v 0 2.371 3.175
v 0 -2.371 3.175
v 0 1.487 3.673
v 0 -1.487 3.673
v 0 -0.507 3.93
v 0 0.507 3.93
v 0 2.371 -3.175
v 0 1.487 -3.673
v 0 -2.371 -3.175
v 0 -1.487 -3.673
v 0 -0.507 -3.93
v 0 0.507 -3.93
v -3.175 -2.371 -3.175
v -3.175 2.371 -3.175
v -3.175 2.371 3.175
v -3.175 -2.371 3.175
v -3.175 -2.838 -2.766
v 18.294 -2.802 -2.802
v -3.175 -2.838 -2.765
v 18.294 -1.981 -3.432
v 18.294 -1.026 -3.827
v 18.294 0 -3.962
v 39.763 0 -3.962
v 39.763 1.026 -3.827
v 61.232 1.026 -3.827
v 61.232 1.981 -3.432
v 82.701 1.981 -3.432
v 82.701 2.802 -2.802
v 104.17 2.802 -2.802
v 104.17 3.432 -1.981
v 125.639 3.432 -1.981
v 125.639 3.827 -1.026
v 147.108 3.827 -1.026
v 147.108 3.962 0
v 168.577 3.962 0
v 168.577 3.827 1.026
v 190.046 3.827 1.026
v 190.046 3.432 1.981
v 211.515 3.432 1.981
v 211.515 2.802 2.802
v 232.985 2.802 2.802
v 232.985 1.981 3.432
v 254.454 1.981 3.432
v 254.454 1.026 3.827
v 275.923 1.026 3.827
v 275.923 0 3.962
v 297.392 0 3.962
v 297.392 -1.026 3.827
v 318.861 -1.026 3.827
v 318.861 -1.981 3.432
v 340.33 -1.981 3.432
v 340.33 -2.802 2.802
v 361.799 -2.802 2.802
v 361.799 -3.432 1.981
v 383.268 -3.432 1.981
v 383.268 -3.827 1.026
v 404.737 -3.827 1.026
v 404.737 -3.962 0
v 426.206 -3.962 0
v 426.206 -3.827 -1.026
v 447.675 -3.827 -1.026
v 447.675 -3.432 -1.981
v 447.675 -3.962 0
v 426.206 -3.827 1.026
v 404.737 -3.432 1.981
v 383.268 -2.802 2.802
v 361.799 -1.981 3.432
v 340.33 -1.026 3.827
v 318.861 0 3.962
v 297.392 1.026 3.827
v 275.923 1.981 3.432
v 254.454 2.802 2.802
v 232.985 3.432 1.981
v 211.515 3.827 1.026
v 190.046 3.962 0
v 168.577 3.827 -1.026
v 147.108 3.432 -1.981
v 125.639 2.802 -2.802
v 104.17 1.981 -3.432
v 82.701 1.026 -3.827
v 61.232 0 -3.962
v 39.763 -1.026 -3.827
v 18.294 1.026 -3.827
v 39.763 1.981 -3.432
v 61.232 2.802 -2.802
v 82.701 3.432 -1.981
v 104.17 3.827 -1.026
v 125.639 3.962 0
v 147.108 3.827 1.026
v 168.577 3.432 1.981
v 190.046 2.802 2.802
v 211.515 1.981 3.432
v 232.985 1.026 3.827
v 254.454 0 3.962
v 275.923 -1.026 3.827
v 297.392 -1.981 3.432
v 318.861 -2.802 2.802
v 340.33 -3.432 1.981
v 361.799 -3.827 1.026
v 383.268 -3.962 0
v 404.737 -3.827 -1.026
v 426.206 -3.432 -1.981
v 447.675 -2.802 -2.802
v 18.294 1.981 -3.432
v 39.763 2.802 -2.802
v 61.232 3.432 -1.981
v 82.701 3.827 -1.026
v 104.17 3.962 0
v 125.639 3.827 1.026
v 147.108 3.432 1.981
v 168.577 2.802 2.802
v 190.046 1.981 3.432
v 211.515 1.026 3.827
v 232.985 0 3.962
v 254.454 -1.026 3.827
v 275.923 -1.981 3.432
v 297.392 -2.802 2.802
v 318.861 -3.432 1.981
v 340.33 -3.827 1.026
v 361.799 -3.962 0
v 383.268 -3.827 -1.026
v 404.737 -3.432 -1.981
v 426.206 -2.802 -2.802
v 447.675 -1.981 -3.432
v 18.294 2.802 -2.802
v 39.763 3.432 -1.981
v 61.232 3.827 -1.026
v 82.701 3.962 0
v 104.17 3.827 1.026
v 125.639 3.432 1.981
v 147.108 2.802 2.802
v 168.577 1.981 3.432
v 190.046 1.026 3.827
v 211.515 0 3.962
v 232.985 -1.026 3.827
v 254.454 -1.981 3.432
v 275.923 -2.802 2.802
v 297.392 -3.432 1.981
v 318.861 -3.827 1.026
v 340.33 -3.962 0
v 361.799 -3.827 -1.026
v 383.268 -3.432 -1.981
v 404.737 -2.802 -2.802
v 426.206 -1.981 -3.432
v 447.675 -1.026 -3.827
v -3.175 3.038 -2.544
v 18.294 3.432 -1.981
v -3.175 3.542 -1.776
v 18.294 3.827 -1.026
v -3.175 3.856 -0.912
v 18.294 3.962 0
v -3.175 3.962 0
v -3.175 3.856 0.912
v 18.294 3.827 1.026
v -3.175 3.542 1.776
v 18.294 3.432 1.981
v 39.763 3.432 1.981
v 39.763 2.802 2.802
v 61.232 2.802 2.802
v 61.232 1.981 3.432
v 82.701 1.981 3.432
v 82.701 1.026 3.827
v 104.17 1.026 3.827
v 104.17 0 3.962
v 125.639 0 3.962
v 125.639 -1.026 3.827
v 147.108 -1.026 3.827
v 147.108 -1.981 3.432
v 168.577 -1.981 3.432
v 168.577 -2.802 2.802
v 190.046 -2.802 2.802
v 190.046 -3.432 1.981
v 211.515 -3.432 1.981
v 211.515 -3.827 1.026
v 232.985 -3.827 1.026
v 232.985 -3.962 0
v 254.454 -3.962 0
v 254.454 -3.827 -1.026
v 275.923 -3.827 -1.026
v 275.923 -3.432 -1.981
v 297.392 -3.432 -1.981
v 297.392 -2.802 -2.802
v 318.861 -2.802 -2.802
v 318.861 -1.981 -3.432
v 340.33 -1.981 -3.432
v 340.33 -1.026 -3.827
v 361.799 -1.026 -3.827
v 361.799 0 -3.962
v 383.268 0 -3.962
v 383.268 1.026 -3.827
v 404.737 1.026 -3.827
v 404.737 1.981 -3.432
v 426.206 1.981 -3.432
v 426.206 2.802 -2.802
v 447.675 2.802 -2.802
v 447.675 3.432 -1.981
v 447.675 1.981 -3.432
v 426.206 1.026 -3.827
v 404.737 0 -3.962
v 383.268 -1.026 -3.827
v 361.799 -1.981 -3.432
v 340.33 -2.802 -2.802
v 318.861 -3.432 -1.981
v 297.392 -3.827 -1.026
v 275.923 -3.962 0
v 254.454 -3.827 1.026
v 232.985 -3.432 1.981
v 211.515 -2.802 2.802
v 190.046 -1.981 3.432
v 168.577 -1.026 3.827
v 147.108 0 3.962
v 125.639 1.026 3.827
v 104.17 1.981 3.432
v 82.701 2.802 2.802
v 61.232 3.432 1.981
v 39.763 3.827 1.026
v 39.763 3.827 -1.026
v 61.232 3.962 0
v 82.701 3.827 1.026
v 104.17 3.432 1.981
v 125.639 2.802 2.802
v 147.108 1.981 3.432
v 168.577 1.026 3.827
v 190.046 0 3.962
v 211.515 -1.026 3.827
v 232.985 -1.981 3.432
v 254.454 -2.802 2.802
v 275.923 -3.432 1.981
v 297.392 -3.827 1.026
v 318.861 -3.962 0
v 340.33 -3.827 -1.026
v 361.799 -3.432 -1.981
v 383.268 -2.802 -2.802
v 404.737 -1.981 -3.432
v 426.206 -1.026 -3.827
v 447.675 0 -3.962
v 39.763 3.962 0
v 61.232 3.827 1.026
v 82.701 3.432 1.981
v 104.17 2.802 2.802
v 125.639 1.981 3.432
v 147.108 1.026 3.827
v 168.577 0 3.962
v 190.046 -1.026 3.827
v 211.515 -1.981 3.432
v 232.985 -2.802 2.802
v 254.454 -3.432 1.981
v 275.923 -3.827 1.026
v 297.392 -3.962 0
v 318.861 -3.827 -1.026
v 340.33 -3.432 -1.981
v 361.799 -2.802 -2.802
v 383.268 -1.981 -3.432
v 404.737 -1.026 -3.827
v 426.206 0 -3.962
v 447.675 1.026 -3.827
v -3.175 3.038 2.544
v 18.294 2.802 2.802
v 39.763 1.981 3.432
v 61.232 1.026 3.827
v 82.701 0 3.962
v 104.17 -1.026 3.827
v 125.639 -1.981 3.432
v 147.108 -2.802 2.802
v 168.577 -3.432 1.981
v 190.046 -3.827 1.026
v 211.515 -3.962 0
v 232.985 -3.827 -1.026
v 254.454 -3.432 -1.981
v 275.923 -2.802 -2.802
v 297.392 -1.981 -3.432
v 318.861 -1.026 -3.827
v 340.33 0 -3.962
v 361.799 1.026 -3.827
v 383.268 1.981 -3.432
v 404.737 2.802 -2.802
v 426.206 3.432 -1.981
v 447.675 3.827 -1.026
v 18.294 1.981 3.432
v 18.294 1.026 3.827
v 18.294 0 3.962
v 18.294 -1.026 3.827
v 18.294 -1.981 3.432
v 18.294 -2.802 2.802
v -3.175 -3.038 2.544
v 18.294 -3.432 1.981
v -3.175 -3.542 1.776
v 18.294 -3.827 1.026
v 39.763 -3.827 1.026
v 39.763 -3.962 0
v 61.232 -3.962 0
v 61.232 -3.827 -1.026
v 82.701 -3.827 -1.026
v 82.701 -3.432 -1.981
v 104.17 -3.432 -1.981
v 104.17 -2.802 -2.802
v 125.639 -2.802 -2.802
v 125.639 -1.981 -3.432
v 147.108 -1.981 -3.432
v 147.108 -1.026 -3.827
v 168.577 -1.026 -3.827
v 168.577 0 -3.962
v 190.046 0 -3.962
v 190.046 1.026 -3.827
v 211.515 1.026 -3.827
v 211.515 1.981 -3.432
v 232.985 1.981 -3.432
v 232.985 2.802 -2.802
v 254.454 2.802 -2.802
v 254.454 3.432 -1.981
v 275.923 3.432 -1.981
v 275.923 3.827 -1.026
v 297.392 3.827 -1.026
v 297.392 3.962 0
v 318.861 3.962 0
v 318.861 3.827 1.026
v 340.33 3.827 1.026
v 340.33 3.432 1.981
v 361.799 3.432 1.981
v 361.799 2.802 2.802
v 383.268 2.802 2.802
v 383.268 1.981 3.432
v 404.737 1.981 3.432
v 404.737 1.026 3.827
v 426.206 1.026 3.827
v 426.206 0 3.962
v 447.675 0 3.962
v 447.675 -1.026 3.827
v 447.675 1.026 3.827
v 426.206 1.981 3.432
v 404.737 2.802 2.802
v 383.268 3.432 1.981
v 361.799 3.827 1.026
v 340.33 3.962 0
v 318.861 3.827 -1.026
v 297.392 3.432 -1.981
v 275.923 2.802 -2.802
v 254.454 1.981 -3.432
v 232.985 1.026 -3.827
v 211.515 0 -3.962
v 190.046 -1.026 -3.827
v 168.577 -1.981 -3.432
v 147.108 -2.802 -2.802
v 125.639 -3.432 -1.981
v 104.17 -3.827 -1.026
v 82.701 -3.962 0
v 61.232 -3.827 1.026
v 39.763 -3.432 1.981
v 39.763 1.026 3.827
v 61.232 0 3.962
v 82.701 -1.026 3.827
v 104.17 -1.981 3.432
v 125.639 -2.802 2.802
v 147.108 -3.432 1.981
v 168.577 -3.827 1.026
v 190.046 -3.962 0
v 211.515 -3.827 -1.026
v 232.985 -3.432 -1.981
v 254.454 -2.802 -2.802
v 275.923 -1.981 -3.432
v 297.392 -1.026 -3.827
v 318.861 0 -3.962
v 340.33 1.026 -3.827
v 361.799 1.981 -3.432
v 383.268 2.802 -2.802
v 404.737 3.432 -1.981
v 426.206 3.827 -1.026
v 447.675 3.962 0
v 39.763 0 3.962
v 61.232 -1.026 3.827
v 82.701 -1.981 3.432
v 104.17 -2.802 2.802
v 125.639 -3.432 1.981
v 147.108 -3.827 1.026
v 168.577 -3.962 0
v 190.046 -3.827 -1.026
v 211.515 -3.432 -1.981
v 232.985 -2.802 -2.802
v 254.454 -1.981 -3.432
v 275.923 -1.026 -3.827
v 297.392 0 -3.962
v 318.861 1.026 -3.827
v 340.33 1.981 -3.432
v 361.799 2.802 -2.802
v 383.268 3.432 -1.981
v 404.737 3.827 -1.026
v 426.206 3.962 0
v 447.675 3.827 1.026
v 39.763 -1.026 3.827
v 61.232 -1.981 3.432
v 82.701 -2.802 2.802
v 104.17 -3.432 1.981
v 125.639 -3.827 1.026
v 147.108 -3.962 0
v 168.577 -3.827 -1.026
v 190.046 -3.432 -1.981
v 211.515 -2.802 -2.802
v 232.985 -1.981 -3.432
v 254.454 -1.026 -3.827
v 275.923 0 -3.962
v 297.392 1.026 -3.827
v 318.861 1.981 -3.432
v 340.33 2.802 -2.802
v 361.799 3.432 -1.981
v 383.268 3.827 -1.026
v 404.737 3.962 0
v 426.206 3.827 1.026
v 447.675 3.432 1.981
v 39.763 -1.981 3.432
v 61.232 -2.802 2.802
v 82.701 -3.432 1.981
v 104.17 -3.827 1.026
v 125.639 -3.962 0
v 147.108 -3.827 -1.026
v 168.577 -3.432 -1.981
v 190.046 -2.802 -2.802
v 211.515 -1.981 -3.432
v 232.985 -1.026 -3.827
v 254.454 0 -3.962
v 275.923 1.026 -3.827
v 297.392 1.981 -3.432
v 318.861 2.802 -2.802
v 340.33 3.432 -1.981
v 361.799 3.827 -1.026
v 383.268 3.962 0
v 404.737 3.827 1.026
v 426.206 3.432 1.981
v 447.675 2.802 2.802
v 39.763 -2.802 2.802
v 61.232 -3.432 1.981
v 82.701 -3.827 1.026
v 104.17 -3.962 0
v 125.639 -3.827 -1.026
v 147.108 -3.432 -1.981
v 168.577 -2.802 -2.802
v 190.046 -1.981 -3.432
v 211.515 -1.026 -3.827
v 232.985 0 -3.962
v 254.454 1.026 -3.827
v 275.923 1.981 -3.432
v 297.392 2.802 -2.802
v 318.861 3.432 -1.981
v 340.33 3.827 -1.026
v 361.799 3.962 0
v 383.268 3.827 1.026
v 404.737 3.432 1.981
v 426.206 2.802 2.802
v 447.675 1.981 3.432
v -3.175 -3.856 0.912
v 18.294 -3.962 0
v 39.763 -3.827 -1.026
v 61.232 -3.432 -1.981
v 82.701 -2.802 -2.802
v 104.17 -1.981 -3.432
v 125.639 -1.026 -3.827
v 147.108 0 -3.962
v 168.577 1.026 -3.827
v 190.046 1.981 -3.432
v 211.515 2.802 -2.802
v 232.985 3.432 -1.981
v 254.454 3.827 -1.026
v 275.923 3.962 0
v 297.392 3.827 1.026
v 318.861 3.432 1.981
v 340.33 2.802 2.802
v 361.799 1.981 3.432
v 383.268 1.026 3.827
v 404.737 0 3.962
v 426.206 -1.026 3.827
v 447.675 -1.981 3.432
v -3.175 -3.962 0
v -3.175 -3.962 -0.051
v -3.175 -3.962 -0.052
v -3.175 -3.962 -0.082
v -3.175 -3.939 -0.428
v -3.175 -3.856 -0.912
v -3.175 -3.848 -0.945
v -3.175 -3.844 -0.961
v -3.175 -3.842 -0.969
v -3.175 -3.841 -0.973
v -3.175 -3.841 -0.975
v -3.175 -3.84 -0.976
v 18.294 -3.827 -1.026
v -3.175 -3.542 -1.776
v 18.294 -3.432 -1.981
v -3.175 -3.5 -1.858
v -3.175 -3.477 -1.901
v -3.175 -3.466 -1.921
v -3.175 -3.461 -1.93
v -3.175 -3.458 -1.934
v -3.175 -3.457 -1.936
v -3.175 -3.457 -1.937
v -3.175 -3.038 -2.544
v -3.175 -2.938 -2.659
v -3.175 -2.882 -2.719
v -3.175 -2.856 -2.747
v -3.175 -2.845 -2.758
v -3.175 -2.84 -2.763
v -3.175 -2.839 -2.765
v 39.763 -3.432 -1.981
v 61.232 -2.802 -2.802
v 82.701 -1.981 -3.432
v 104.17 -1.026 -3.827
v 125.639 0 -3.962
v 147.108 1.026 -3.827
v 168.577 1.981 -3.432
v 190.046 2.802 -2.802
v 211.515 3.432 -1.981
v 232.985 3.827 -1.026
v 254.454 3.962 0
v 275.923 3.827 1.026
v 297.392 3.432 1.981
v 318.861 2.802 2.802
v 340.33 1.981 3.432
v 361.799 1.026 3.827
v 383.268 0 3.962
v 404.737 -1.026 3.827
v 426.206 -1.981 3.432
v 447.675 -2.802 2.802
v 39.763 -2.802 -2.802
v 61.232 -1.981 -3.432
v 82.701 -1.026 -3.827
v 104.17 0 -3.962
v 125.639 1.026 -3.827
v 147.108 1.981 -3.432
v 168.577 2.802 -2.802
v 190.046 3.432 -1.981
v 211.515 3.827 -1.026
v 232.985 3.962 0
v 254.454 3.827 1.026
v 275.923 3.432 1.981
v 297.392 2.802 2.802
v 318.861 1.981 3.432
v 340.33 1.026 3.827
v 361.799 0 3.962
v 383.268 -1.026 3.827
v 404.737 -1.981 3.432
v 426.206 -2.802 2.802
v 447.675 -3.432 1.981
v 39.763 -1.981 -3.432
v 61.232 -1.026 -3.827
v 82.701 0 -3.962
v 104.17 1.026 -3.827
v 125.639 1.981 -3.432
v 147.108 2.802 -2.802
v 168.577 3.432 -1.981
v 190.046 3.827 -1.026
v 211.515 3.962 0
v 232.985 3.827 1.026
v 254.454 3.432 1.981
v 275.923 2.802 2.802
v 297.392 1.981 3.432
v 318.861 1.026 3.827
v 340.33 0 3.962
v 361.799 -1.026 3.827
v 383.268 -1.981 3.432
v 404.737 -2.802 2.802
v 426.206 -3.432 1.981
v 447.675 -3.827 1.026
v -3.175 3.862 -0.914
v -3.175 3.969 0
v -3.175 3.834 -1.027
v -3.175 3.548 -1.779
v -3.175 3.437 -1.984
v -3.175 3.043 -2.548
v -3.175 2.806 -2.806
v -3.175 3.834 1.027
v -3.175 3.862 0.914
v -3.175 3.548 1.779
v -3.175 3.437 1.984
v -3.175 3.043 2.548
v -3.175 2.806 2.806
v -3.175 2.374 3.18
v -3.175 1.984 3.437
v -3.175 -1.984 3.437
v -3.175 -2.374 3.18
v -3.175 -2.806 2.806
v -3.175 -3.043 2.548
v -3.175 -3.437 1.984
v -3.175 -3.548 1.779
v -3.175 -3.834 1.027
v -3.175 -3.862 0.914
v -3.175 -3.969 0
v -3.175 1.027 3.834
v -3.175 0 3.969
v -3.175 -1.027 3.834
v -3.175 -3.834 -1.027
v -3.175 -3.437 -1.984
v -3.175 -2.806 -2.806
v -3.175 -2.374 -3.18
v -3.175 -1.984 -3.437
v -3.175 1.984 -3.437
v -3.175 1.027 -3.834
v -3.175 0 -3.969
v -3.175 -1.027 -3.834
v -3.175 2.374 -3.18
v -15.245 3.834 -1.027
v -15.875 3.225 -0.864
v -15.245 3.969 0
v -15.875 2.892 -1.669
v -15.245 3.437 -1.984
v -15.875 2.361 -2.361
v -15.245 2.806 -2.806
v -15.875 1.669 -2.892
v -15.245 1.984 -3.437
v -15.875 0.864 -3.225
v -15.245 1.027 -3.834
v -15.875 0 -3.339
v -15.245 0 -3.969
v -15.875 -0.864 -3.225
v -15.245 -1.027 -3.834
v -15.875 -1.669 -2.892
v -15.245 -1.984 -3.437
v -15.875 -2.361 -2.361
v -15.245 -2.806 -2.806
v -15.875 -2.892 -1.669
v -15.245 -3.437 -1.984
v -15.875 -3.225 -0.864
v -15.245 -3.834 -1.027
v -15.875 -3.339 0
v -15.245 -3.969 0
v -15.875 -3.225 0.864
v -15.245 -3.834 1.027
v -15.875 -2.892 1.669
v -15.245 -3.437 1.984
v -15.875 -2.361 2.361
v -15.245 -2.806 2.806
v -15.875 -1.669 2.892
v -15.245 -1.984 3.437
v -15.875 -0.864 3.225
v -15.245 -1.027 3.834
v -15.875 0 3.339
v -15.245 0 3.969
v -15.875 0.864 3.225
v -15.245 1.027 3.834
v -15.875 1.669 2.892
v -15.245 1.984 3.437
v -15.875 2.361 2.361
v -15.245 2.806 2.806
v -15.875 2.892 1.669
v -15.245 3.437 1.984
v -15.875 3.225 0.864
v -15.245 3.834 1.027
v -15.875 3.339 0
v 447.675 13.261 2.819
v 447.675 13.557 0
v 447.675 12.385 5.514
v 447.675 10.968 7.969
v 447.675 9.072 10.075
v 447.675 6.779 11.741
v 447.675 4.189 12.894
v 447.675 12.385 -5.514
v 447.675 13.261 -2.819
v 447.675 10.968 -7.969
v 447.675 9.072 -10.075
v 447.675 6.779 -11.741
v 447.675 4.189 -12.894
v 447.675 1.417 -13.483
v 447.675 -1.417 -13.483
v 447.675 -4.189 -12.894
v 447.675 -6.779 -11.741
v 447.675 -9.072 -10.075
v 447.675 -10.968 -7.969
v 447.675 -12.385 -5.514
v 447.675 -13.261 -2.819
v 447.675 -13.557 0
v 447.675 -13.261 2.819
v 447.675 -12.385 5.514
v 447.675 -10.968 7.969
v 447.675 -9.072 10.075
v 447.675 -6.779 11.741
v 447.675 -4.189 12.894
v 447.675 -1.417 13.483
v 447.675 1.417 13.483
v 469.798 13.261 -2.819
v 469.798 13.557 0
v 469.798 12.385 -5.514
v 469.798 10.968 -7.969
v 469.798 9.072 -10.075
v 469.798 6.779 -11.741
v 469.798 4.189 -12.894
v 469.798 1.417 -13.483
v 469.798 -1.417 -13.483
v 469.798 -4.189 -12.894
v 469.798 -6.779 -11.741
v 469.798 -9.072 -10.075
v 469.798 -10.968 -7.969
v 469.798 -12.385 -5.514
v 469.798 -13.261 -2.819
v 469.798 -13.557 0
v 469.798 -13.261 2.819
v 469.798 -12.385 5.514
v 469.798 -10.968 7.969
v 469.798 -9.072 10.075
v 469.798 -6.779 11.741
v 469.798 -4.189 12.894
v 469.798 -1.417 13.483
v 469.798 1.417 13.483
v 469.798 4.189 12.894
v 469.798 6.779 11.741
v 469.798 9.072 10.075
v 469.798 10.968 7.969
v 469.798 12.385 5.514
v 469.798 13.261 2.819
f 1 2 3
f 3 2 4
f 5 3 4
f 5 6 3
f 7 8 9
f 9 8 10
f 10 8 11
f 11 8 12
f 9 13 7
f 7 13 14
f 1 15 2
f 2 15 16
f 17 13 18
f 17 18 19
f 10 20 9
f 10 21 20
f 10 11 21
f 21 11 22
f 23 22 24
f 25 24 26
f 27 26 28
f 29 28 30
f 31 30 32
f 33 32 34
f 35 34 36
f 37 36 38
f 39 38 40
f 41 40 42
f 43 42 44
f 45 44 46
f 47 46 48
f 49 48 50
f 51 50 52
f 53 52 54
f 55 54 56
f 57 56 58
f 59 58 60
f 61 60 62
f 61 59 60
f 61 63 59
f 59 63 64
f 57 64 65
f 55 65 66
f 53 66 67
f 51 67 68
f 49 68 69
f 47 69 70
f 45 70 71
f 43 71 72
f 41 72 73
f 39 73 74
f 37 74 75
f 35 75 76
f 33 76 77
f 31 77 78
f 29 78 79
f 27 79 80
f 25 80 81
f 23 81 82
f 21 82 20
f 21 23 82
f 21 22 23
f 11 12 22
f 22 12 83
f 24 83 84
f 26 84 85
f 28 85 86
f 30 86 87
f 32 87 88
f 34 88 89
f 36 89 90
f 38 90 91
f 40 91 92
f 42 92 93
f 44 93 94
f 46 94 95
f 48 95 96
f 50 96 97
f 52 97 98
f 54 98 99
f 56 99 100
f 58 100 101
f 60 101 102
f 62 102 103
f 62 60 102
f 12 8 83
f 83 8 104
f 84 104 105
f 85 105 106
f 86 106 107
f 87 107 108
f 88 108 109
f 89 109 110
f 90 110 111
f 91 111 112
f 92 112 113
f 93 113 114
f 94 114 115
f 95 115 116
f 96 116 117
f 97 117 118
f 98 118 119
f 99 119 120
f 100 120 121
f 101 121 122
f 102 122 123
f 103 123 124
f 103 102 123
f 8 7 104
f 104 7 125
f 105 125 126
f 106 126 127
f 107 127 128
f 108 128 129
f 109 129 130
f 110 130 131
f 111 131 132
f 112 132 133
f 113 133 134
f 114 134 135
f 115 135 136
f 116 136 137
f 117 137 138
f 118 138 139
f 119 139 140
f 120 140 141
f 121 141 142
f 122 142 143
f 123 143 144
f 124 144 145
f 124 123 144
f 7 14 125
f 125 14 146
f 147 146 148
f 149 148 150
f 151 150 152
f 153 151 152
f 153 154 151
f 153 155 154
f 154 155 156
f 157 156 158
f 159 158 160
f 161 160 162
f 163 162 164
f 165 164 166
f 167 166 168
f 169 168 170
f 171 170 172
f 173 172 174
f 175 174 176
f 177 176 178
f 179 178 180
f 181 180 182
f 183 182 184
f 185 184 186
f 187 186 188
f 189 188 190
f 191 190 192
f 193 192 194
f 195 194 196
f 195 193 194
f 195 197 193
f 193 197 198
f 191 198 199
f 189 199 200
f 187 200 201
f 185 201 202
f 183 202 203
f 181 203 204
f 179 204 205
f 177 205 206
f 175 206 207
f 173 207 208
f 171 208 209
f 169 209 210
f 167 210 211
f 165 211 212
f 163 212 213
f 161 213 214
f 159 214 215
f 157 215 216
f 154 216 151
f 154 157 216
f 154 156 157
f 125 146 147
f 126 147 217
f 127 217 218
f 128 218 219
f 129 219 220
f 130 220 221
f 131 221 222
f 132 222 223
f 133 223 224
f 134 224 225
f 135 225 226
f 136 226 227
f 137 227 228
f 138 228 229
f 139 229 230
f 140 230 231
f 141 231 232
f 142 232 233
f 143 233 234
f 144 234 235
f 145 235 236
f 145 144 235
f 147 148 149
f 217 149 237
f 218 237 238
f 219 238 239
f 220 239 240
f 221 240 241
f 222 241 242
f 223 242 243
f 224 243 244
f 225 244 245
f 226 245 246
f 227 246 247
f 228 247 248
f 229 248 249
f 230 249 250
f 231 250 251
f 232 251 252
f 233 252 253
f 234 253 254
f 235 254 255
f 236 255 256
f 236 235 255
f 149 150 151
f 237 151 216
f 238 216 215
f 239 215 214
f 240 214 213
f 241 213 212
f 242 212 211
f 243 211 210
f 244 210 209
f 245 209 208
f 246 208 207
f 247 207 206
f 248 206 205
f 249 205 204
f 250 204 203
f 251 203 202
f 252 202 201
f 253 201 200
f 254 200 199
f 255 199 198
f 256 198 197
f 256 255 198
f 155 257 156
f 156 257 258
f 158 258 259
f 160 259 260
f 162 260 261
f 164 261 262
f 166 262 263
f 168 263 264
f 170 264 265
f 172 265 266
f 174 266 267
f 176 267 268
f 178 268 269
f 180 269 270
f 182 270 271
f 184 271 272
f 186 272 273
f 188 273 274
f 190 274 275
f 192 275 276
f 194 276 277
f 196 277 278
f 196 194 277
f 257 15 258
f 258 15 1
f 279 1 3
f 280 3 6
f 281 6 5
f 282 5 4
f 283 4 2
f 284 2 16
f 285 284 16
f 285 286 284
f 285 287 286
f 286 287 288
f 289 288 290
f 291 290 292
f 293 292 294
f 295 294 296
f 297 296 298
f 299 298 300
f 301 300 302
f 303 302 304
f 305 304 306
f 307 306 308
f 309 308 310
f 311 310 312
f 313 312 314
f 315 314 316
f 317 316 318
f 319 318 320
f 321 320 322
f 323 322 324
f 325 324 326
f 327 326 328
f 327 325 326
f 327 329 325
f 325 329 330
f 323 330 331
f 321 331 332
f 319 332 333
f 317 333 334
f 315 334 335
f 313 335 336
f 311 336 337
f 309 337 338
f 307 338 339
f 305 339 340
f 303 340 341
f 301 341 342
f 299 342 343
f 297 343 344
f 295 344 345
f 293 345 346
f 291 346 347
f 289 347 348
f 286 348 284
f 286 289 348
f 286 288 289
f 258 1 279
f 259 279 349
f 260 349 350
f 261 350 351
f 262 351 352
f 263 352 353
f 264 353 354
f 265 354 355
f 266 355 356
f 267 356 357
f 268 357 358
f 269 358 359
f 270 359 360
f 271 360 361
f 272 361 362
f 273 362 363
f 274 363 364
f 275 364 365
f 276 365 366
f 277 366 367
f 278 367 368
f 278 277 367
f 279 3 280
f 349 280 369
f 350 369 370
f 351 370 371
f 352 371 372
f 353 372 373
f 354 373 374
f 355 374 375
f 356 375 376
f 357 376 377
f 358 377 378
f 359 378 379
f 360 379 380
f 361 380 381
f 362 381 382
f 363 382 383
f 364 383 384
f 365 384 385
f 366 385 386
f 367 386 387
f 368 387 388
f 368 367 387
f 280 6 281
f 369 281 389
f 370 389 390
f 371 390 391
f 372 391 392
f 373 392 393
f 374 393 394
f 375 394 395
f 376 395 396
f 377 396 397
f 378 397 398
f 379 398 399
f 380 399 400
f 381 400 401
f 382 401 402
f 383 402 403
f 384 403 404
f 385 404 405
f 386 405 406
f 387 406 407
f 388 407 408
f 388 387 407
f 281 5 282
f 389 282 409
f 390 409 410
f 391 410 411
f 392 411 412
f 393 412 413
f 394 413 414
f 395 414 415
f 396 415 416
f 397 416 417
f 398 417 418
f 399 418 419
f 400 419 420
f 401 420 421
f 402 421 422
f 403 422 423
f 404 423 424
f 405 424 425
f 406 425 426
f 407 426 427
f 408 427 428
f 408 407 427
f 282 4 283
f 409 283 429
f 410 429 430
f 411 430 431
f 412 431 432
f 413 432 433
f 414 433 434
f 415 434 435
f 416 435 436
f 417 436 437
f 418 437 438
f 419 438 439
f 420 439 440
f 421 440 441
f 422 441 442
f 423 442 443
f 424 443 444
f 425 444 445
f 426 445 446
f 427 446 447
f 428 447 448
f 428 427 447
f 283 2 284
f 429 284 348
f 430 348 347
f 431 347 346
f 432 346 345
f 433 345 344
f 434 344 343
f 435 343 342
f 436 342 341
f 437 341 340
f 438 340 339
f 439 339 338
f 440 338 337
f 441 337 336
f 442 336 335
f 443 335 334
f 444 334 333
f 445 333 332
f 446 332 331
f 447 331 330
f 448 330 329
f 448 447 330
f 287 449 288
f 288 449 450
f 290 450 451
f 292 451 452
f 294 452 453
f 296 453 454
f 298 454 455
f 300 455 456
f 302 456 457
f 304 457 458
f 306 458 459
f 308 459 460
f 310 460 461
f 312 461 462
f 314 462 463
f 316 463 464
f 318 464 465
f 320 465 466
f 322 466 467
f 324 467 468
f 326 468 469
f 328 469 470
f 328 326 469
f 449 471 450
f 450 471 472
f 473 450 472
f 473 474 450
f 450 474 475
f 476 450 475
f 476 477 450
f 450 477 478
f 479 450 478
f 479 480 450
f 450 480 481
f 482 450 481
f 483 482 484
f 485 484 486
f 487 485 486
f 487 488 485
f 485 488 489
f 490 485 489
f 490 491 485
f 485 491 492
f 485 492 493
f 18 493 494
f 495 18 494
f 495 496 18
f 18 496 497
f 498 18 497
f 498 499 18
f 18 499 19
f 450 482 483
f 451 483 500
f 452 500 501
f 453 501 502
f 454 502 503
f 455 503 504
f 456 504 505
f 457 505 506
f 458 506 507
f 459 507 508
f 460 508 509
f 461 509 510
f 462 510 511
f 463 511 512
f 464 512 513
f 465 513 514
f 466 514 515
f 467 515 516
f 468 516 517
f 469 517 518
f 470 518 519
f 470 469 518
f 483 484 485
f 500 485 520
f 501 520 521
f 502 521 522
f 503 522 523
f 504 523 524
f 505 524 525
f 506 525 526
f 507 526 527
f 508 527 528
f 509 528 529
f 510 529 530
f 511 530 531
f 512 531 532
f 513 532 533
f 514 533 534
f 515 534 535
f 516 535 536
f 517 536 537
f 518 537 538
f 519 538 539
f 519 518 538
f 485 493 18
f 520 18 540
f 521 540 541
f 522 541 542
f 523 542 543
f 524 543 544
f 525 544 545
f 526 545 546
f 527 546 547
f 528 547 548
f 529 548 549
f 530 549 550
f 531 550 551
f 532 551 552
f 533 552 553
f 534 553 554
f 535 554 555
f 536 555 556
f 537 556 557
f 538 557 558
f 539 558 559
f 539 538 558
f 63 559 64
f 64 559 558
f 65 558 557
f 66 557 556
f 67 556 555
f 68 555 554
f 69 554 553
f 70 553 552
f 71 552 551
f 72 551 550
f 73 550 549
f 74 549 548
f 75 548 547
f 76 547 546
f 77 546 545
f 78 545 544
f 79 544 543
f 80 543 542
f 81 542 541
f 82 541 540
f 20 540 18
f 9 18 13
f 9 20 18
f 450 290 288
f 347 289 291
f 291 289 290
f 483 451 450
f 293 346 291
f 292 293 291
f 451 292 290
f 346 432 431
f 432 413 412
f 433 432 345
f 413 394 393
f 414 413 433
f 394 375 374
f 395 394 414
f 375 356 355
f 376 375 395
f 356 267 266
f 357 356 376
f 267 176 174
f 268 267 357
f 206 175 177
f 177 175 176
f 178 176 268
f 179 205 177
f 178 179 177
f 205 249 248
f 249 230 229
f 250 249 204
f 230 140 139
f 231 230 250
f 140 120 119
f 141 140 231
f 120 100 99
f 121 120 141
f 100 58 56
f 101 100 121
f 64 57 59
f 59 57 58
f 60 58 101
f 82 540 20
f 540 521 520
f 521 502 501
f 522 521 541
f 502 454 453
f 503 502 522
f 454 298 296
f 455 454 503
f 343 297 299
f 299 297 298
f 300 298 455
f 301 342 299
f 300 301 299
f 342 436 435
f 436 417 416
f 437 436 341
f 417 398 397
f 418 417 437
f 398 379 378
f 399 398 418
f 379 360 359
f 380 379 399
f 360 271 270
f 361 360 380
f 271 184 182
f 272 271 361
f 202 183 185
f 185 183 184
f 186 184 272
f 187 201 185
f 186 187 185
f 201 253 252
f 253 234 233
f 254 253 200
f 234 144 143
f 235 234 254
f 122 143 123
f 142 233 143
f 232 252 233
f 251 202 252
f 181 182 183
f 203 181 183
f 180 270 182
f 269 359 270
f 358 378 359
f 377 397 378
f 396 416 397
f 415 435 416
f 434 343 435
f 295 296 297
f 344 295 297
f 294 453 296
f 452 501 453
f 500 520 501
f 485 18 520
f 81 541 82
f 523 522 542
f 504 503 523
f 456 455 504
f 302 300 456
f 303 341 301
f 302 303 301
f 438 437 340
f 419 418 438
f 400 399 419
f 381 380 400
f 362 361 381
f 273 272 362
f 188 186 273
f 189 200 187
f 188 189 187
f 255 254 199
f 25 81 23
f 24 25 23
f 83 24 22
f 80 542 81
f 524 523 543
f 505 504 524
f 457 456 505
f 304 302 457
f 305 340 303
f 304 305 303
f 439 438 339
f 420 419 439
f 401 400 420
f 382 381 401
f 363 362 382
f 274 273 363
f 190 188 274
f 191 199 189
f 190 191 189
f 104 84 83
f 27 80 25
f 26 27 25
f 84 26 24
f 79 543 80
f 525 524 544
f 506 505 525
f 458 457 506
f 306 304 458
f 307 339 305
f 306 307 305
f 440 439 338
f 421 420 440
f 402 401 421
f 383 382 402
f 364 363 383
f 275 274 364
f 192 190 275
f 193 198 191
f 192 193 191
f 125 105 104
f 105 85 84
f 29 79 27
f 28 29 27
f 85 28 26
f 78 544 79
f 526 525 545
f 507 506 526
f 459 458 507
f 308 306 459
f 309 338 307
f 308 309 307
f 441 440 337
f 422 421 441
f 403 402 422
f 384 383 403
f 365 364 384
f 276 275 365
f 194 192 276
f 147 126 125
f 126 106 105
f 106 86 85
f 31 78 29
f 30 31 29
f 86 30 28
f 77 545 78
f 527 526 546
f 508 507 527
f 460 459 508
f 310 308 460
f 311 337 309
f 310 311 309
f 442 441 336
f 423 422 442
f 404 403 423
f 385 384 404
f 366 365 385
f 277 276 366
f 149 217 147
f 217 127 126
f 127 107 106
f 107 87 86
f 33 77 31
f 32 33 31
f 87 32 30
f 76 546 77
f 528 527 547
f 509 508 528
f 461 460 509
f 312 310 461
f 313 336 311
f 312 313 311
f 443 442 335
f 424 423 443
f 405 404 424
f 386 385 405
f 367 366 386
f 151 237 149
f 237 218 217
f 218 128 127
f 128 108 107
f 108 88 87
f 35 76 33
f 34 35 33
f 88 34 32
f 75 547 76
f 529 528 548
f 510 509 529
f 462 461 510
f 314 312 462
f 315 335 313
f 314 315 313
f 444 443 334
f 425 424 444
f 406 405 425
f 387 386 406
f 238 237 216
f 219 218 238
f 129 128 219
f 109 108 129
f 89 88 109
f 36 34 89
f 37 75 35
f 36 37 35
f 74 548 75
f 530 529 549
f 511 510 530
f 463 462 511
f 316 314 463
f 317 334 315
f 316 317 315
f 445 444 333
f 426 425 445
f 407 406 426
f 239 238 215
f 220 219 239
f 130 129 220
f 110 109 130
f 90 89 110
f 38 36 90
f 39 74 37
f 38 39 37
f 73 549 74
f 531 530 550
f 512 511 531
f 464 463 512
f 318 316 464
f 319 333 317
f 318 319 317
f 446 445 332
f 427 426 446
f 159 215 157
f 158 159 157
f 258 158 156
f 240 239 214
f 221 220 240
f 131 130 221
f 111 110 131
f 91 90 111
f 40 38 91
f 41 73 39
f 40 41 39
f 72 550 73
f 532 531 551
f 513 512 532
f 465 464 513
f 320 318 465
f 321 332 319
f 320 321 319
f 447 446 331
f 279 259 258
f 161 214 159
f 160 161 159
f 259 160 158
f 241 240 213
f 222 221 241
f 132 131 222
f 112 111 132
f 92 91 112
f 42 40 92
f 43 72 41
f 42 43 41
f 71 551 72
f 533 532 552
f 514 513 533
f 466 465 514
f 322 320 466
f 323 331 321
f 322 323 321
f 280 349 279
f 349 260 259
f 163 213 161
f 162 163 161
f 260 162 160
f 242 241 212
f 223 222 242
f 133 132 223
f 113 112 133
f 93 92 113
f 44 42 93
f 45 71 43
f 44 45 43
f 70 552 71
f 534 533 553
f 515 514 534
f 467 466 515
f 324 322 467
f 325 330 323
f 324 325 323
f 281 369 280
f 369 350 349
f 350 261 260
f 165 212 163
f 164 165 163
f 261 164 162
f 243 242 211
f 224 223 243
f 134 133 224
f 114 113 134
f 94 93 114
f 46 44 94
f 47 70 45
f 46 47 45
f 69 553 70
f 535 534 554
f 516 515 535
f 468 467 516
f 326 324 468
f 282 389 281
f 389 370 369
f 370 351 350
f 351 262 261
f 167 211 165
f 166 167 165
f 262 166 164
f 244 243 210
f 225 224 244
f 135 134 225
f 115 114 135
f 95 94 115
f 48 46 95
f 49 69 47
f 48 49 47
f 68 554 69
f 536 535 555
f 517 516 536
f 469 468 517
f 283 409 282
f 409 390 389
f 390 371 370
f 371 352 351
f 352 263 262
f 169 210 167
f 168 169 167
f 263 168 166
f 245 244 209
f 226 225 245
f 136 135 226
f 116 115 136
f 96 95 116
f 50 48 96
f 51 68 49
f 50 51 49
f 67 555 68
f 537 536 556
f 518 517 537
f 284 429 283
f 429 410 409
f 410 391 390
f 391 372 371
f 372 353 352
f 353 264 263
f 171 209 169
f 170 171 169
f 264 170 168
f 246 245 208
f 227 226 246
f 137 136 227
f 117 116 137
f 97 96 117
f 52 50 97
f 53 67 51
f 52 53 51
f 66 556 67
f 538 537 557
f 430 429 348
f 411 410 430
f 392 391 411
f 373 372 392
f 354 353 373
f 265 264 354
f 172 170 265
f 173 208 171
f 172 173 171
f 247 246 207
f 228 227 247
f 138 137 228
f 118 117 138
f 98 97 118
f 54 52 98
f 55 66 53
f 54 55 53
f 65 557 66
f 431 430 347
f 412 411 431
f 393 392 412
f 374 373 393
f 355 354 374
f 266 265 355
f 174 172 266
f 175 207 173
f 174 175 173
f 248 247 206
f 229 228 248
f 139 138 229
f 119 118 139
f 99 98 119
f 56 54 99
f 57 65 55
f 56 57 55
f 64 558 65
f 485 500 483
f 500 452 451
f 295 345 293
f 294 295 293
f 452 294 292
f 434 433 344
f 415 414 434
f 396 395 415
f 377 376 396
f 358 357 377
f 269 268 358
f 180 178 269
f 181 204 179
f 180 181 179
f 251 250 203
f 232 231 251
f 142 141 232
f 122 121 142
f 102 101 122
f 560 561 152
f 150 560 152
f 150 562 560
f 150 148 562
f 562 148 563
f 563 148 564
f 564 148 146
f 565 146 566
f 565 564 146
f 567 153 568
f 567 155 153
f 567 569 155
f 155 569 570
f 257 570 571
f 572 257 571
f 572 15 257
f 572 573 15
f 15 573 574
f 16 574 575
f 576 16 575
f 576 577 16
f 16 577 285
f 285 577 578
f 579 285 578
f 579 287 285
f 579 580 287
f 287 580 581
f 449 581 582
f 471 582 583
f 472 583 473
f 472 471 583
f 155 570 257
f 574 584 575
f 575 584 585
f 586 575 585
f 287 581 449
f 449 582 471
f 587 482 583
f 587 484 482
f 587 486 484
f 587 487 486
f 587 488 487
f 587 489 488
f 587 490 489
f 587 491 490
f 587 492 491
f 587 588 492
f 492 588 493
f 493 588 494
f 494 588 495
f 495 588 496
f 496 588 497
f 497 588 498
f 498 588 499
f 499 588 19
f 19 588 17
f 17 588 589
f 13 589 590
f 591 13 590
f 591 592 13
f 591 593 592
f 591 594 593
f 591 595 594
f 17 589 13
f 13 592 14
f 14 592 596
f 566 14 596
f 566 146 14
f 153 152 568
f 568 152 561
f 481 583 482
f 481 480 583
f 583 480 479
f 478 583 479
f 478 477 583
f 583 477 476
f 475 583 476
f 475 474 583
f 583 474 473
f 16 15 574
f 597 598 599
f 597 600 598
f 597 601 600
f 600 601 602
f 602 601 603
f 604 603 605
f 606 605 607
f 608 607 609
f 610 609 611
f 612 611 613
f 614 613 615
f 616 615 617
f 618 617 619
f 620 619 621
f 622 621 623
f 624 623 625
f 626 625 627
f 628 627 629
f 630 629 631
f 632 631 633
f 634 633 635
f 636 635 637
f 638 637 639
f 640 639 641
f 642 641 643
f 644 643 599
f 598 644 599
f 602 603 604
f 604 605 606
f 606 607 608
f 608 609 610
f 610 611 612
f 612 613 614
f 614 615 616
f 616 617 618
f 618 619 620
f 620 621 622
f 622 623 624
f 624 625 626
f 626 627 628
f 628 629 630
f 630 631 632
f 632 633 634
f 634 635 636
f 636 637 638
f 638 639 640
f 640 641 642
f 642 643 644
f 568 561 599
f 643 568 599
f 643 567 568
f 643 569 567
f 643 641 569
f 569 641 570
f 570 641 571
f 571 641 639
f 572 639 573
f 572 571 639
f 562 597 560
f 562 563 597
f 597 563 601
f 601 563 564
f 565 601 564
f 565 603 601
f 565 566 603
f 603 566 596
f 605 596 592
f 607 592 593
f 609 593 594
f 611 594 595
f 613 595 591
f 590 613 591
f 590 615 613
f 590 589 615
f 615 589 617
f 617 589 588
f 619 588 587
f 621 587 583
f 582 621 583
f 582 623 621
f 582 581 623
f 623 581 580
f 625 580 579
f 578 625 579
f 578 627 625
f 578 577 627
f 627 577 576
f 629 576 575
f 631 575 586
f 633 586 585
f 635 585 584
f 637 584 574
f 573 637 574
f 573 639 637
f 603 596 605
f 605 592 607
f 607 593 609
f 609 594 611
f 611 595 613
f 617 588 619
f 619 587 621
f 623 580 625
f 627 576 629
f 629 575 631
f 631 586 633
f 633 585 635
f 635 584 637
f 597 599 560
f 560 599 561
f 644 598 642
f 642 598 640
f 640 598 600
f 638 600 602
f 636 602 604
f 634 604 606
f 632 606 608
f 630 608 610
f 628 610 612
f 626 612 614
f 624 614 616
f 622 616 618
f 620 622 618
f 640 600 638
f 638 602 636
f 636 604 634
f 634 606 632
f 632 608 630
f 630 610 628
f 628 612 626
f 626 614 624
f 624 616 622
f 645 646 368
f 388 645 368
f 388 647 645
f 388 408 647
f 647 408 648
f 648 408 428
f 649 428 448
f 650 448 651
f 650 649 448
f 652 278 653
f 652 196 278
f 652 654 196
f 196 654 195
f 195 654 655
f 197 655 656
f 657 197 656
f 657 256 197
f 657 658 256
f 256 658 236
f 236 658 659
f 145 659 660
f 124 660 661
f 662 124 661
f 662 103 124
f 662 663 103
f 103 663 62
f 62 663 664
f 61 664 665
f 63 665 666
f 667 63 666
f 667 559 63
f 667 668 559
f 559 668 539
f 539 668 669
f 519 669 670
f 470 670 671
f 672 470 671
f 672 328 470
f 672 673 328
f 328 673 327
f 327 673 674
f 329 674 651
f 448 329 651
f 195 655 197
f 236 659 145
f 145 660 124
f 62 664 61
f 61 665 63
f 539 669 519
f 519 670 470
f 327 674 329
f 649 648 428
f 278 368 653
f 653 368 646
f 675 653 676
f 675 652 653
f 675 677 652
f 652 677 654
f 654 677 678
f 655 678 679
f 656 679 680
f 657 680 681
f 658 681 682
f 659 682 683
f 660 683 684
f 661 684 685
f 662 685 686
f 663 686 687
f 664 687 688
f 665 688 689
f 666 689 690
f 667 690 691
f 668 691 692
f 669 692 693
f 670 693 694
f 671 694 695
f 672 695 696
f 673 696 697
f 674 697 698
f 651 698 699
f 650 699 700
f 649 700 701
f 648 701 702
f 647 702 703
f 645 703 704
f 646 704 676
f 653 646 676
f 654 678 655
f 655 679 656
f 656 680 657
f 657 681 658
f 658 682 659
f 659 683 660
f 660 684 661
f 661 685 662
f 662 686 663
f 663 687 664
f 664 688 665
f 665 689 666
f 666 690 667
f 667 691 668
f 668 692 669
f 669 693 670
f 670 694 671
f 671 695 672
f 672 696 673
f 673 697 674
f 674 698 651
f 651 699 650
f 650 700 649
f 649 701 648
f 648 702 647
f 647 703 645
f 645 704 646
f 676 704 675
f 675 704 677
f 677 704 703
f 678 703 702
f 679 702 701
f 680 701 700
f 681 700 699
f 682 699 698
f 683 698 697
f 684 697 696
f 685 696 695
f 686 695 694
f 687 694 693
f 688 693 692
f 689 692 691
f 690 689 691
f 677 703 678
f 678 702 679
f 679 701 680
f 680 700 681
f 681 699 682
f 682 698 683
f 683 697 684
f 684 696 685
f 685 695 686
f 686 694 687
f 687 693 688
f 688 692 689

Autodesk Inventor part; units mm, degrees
sketch "Sketch_1" plane through (0, 0, 0) normal (0, 0, 1) x (1, 0, 0)
  line L0 (469.7984, 0) -> (-3.175, 0)
  line L1 (-3.175, 0) -> (-3.175, 3.9624)
  line L2 (-3.175, 3.9624) -> (447.675, 3.9624)
  line L3 (447.675, 3.9624) -> (447.675, 13.5572)
  line L4 (447.675, 13.5572) -> (469.7984, 13.5572)
  line L5 (469.7984, 13.5572) -> (469.7984, 0)
  line L6 (469.7984, 0) -> (-3.175, 0)
revolve "Revolution1" add sketch "Sketch_1" angle 360 about axis through (469.7984, 0, 0) along (1, 0, 0)
sketch "Sketch_3" plane through (0, 0, 0) normal (0, 0, 1) x (1, 0, 0)
  line L0 (-3.175, 0) -> (-15.875, 0)
  line L1 (-15.875, 0) -> (-15.875, 3.3388)
  line L2 (-15.875, 3.3388) -> (-15.2451, 3.9688)
  line L3 (-15.2451, 3.9688) -> (-3.175, 3.9688)
  line L4 (-3.175, 3.9688) -> (-3.175, 0)
  line L5 (-3.175, 0) -> (-15.875, 0)
revolve "Revolution2" add sketch "Sketch_3" angle 360 about axis through (-3.175, 0, 0) along (1, 0, 0)
thread "Thread1" size "5/16-20 UN" class "3A" standard "ANSI Unified Screw Threads" full length
sketch "Sketch_10" plane through (-3.175, 0, 0) normal (1, 0, 0) x (0, 0, -1)
  line L0 (-7.9248, 7.9248) -> (-7.9248, -7.9248)
  line L1 (-7.9248, -7.9248) -> (7.9248, -7.9248)
  line L2 (7.9248, -7.9248) -> (7.9248, 7.9248)
  line L3 (7.9248, 7.9248) -> (-7.9248, 7.9248)
  line L4 (-3.175, 3.9624) -> (-3.175, -3.9624)
  line L5 (-3.175, -3.9624) -> (3.175, -3.9624)
  line L6 (3.175, -3.9624) -> (3.175, 3.9624)
  line L7 (3.175, 3.9624) -> (-3.175, 3.9624)
extrude "Extrusion1" cut sketch "Sketch_10" along normal blind 3.175
ref_plane "rod_cp_XY" through (0, 0, 0) normal (1, 0, 0) x (0, 0, -1)
ref_plane "rod_cp_YZ" through (0, 0, 0) normal (0, 0, -1) x (0, 1, 0)
ref_plane "rod_cp_ZX" through (0, 0, 0) normal (0, 1, 0) x (1, 0, 0)
ref_plane "to_rod_clevis_XY" through (-15.875, 0, 0) normal (1, 0, 0) x (0, 0, -1)
ref_plane "to_rod_clevis_YZ" through (-15.875, 0, 0) normal (0, 0, -1) x (0, 1, 0)
ref_plane "to_rod_clevis_ZX" through (-15.875, 0, 0) normal (0, 1, 0) x (1, 0, 0)
ref_plane "rl2_XY" through (-3.175, 0, 0) normal (1, 0, 0) x (0, 0, -1)
ref_plane "rl2_YZ" through (-3.175, 0, 0) normal (0, 0, -1) x (0, 1, 0)
ref_plane "rl2_ZX" through (-3.175, 0, 0) normal (0, 1, 0) x (1, 0, 0)
ref_plane "rl1_XY" through (-15.875, 0, 0) normal (1, 0, 0) x (0, 0, -1)
ref_plane "rl1_YZ" through (-15.875, 0, 0) normal (0, 0, -1) x (0, 1, 0)
ref_plane "rl1_ZX" through (-15.875, 0, 0) normal (0, 1, 0) x (1, 0, 0)
ref_plane "thd1_XY" through (-15.875, 3.9688, 0) normal (1, 0, 0) x (0, 0, -1)
ref_plane "thd1_YZ" through (-15.875, 3.9688, 0) normal (0, 0, -1) x (0, 1, 0)
ref_plane "thd1_ZX" through (-15.875, 3.9688, 0) normal (0, 1, 0) x (1, 0, 0)
ref_plane "thd2_XY" through (-15.875, -3.9688, 0) normal (1, 0, 0) x (0, 0, -1)
ref_plane "thd2_YZ" through (-15.875, -3.9688, 0) normal (0, 0, -1) x (0, 1, 0)
ref_plane "thd2_ZX" through (-15.875, -3.9688, 0) normal (0, 1, 0) x (1, 0, 0)
ref_plane "dia1_XY" through (-3.175, 3.9624, 0) normal (1, 0, 0) x (0, 0, -1)
ref_plane "dia1_YZ" through (-3.175, 3.9624, 0) normal (0, 0, -1) x (0, 1, 0)
ref_plane "dia1_ZX" through (-3.175, 3.9624, 0) normal (0, 1, 0) x (1, 0, 0)
ref_plane "dia2_XY" through (-3.175, -3.9624, 0) normal (1, 0, 0) x (0, 0, -1)
ref_plane "dia2_YZ" through (-3.175, -3.9624, 0) normal (0, 0, -1) x (0, 1, 0)
ref_plane "dia2_ZX" through (-3.175, -3.9624, 0) normal (0, 1, 0) x (1, 0, 0)
ref_plane "wf1_XY" through (-3.175, 0, 0) normal (1, 0, 0) x (0, 0, -1)
ref_plane "wf1_YZ" through (-3.175, 0, 0) normal (0, 0, -1) x (0, 1, 0)
ref_plane "wf1_ZX" through (-3.175, 0, 0) normal (0, 1, 0) x (1, 0, 0)
ref_plane "wf2_XY" through (0, 0, 0) normal (1, 0, 0) x (0, 0, -1)
ref_plane "wf2_YZ" through (0, 0, 0) normal (0, 0, -1) x (0, 1, 0)
ref_plane "wf2_ZX" through (0, 0, 0) normal (0, 1, 0) x (1, 0, 0)
ref_plane "hh1_XY" through (497.5606, 0, 0) normal (0, 0, 1) x (1, 0, 0)
ref_plane "hh1_YZ" through (497.5606, 0, 0) normal (1, 0, 0) x (0, 1, 0)
ref_plane "hh1_ZX" through (497.5606, 0, 0) normal (0, 1, 0) x (0, 0, 1)
ref_plane "hh2_XY" through (503.9614, 0, 0) normal (0, 0, 1) x (1, 0, 0)
ref_plane "hh2_YZ" through (503.9614, 0, 0) normal (1, 0, 0) x (0, 1, 0)
ref_plane "hh2_ZX" through (503.9614, 0, 0) normal (0, 1, 0) x (0, 0, 1)
ref_plane "dia12_XY" through (0, 0, 14.1351) normal (1, 0, 0) x (0, 0, -1)
ref_plane "dia12_YZ" through (0, 0, 14.1351) normal (0, 0, -1) x (0, 1, 0)
ref_plane "dia12_ZX" through (0, 0, 14.1351) normal (0, 1, 0) x (1, 0, 0)
ref_plane "dia22_XY" through (0, 0, -14.1351) normal (1, 0, 0) x (0, 0, -1)
ref_plane "dia22_YZ" through (0, 0, -14.1351) normal (0, 0, -1) x (0, 1, 0)
ref_plane "dia22_ZX" through (0, 0, -14.1351) normal (0, 1, 0) x (1, 0, 0)
ref_plane "wfw1_XY" through (-3.175, 0, -3.175) normal (0, 1, 0) x (1, 0, 0)
ref_plane "wfw1_YZ" through (-3.175, 0, -3.175) normal (1, 0, 0) x (0, 0, -1)
ref_plane "wfw1_ZX" through (-3.175, 0, -3.175) normal (0, 0, -1) x (0, 1, 0)
ref_plane "wfw2_XY" through (-3.175, 0, 3.175) normal (0, 1, 0) x (1, 0, 0)
ref_plane "wfw2_YZ" through (-3.175, 0, 3.175) normal (1, 0, 0) x (0, 0, -1)
ref_plane "wfw2_ZX" through (-3.175, 0, 3.175) normal (0, 0, -1) x (0, 1, 0)
properties part number "0916-DX0_rod"
